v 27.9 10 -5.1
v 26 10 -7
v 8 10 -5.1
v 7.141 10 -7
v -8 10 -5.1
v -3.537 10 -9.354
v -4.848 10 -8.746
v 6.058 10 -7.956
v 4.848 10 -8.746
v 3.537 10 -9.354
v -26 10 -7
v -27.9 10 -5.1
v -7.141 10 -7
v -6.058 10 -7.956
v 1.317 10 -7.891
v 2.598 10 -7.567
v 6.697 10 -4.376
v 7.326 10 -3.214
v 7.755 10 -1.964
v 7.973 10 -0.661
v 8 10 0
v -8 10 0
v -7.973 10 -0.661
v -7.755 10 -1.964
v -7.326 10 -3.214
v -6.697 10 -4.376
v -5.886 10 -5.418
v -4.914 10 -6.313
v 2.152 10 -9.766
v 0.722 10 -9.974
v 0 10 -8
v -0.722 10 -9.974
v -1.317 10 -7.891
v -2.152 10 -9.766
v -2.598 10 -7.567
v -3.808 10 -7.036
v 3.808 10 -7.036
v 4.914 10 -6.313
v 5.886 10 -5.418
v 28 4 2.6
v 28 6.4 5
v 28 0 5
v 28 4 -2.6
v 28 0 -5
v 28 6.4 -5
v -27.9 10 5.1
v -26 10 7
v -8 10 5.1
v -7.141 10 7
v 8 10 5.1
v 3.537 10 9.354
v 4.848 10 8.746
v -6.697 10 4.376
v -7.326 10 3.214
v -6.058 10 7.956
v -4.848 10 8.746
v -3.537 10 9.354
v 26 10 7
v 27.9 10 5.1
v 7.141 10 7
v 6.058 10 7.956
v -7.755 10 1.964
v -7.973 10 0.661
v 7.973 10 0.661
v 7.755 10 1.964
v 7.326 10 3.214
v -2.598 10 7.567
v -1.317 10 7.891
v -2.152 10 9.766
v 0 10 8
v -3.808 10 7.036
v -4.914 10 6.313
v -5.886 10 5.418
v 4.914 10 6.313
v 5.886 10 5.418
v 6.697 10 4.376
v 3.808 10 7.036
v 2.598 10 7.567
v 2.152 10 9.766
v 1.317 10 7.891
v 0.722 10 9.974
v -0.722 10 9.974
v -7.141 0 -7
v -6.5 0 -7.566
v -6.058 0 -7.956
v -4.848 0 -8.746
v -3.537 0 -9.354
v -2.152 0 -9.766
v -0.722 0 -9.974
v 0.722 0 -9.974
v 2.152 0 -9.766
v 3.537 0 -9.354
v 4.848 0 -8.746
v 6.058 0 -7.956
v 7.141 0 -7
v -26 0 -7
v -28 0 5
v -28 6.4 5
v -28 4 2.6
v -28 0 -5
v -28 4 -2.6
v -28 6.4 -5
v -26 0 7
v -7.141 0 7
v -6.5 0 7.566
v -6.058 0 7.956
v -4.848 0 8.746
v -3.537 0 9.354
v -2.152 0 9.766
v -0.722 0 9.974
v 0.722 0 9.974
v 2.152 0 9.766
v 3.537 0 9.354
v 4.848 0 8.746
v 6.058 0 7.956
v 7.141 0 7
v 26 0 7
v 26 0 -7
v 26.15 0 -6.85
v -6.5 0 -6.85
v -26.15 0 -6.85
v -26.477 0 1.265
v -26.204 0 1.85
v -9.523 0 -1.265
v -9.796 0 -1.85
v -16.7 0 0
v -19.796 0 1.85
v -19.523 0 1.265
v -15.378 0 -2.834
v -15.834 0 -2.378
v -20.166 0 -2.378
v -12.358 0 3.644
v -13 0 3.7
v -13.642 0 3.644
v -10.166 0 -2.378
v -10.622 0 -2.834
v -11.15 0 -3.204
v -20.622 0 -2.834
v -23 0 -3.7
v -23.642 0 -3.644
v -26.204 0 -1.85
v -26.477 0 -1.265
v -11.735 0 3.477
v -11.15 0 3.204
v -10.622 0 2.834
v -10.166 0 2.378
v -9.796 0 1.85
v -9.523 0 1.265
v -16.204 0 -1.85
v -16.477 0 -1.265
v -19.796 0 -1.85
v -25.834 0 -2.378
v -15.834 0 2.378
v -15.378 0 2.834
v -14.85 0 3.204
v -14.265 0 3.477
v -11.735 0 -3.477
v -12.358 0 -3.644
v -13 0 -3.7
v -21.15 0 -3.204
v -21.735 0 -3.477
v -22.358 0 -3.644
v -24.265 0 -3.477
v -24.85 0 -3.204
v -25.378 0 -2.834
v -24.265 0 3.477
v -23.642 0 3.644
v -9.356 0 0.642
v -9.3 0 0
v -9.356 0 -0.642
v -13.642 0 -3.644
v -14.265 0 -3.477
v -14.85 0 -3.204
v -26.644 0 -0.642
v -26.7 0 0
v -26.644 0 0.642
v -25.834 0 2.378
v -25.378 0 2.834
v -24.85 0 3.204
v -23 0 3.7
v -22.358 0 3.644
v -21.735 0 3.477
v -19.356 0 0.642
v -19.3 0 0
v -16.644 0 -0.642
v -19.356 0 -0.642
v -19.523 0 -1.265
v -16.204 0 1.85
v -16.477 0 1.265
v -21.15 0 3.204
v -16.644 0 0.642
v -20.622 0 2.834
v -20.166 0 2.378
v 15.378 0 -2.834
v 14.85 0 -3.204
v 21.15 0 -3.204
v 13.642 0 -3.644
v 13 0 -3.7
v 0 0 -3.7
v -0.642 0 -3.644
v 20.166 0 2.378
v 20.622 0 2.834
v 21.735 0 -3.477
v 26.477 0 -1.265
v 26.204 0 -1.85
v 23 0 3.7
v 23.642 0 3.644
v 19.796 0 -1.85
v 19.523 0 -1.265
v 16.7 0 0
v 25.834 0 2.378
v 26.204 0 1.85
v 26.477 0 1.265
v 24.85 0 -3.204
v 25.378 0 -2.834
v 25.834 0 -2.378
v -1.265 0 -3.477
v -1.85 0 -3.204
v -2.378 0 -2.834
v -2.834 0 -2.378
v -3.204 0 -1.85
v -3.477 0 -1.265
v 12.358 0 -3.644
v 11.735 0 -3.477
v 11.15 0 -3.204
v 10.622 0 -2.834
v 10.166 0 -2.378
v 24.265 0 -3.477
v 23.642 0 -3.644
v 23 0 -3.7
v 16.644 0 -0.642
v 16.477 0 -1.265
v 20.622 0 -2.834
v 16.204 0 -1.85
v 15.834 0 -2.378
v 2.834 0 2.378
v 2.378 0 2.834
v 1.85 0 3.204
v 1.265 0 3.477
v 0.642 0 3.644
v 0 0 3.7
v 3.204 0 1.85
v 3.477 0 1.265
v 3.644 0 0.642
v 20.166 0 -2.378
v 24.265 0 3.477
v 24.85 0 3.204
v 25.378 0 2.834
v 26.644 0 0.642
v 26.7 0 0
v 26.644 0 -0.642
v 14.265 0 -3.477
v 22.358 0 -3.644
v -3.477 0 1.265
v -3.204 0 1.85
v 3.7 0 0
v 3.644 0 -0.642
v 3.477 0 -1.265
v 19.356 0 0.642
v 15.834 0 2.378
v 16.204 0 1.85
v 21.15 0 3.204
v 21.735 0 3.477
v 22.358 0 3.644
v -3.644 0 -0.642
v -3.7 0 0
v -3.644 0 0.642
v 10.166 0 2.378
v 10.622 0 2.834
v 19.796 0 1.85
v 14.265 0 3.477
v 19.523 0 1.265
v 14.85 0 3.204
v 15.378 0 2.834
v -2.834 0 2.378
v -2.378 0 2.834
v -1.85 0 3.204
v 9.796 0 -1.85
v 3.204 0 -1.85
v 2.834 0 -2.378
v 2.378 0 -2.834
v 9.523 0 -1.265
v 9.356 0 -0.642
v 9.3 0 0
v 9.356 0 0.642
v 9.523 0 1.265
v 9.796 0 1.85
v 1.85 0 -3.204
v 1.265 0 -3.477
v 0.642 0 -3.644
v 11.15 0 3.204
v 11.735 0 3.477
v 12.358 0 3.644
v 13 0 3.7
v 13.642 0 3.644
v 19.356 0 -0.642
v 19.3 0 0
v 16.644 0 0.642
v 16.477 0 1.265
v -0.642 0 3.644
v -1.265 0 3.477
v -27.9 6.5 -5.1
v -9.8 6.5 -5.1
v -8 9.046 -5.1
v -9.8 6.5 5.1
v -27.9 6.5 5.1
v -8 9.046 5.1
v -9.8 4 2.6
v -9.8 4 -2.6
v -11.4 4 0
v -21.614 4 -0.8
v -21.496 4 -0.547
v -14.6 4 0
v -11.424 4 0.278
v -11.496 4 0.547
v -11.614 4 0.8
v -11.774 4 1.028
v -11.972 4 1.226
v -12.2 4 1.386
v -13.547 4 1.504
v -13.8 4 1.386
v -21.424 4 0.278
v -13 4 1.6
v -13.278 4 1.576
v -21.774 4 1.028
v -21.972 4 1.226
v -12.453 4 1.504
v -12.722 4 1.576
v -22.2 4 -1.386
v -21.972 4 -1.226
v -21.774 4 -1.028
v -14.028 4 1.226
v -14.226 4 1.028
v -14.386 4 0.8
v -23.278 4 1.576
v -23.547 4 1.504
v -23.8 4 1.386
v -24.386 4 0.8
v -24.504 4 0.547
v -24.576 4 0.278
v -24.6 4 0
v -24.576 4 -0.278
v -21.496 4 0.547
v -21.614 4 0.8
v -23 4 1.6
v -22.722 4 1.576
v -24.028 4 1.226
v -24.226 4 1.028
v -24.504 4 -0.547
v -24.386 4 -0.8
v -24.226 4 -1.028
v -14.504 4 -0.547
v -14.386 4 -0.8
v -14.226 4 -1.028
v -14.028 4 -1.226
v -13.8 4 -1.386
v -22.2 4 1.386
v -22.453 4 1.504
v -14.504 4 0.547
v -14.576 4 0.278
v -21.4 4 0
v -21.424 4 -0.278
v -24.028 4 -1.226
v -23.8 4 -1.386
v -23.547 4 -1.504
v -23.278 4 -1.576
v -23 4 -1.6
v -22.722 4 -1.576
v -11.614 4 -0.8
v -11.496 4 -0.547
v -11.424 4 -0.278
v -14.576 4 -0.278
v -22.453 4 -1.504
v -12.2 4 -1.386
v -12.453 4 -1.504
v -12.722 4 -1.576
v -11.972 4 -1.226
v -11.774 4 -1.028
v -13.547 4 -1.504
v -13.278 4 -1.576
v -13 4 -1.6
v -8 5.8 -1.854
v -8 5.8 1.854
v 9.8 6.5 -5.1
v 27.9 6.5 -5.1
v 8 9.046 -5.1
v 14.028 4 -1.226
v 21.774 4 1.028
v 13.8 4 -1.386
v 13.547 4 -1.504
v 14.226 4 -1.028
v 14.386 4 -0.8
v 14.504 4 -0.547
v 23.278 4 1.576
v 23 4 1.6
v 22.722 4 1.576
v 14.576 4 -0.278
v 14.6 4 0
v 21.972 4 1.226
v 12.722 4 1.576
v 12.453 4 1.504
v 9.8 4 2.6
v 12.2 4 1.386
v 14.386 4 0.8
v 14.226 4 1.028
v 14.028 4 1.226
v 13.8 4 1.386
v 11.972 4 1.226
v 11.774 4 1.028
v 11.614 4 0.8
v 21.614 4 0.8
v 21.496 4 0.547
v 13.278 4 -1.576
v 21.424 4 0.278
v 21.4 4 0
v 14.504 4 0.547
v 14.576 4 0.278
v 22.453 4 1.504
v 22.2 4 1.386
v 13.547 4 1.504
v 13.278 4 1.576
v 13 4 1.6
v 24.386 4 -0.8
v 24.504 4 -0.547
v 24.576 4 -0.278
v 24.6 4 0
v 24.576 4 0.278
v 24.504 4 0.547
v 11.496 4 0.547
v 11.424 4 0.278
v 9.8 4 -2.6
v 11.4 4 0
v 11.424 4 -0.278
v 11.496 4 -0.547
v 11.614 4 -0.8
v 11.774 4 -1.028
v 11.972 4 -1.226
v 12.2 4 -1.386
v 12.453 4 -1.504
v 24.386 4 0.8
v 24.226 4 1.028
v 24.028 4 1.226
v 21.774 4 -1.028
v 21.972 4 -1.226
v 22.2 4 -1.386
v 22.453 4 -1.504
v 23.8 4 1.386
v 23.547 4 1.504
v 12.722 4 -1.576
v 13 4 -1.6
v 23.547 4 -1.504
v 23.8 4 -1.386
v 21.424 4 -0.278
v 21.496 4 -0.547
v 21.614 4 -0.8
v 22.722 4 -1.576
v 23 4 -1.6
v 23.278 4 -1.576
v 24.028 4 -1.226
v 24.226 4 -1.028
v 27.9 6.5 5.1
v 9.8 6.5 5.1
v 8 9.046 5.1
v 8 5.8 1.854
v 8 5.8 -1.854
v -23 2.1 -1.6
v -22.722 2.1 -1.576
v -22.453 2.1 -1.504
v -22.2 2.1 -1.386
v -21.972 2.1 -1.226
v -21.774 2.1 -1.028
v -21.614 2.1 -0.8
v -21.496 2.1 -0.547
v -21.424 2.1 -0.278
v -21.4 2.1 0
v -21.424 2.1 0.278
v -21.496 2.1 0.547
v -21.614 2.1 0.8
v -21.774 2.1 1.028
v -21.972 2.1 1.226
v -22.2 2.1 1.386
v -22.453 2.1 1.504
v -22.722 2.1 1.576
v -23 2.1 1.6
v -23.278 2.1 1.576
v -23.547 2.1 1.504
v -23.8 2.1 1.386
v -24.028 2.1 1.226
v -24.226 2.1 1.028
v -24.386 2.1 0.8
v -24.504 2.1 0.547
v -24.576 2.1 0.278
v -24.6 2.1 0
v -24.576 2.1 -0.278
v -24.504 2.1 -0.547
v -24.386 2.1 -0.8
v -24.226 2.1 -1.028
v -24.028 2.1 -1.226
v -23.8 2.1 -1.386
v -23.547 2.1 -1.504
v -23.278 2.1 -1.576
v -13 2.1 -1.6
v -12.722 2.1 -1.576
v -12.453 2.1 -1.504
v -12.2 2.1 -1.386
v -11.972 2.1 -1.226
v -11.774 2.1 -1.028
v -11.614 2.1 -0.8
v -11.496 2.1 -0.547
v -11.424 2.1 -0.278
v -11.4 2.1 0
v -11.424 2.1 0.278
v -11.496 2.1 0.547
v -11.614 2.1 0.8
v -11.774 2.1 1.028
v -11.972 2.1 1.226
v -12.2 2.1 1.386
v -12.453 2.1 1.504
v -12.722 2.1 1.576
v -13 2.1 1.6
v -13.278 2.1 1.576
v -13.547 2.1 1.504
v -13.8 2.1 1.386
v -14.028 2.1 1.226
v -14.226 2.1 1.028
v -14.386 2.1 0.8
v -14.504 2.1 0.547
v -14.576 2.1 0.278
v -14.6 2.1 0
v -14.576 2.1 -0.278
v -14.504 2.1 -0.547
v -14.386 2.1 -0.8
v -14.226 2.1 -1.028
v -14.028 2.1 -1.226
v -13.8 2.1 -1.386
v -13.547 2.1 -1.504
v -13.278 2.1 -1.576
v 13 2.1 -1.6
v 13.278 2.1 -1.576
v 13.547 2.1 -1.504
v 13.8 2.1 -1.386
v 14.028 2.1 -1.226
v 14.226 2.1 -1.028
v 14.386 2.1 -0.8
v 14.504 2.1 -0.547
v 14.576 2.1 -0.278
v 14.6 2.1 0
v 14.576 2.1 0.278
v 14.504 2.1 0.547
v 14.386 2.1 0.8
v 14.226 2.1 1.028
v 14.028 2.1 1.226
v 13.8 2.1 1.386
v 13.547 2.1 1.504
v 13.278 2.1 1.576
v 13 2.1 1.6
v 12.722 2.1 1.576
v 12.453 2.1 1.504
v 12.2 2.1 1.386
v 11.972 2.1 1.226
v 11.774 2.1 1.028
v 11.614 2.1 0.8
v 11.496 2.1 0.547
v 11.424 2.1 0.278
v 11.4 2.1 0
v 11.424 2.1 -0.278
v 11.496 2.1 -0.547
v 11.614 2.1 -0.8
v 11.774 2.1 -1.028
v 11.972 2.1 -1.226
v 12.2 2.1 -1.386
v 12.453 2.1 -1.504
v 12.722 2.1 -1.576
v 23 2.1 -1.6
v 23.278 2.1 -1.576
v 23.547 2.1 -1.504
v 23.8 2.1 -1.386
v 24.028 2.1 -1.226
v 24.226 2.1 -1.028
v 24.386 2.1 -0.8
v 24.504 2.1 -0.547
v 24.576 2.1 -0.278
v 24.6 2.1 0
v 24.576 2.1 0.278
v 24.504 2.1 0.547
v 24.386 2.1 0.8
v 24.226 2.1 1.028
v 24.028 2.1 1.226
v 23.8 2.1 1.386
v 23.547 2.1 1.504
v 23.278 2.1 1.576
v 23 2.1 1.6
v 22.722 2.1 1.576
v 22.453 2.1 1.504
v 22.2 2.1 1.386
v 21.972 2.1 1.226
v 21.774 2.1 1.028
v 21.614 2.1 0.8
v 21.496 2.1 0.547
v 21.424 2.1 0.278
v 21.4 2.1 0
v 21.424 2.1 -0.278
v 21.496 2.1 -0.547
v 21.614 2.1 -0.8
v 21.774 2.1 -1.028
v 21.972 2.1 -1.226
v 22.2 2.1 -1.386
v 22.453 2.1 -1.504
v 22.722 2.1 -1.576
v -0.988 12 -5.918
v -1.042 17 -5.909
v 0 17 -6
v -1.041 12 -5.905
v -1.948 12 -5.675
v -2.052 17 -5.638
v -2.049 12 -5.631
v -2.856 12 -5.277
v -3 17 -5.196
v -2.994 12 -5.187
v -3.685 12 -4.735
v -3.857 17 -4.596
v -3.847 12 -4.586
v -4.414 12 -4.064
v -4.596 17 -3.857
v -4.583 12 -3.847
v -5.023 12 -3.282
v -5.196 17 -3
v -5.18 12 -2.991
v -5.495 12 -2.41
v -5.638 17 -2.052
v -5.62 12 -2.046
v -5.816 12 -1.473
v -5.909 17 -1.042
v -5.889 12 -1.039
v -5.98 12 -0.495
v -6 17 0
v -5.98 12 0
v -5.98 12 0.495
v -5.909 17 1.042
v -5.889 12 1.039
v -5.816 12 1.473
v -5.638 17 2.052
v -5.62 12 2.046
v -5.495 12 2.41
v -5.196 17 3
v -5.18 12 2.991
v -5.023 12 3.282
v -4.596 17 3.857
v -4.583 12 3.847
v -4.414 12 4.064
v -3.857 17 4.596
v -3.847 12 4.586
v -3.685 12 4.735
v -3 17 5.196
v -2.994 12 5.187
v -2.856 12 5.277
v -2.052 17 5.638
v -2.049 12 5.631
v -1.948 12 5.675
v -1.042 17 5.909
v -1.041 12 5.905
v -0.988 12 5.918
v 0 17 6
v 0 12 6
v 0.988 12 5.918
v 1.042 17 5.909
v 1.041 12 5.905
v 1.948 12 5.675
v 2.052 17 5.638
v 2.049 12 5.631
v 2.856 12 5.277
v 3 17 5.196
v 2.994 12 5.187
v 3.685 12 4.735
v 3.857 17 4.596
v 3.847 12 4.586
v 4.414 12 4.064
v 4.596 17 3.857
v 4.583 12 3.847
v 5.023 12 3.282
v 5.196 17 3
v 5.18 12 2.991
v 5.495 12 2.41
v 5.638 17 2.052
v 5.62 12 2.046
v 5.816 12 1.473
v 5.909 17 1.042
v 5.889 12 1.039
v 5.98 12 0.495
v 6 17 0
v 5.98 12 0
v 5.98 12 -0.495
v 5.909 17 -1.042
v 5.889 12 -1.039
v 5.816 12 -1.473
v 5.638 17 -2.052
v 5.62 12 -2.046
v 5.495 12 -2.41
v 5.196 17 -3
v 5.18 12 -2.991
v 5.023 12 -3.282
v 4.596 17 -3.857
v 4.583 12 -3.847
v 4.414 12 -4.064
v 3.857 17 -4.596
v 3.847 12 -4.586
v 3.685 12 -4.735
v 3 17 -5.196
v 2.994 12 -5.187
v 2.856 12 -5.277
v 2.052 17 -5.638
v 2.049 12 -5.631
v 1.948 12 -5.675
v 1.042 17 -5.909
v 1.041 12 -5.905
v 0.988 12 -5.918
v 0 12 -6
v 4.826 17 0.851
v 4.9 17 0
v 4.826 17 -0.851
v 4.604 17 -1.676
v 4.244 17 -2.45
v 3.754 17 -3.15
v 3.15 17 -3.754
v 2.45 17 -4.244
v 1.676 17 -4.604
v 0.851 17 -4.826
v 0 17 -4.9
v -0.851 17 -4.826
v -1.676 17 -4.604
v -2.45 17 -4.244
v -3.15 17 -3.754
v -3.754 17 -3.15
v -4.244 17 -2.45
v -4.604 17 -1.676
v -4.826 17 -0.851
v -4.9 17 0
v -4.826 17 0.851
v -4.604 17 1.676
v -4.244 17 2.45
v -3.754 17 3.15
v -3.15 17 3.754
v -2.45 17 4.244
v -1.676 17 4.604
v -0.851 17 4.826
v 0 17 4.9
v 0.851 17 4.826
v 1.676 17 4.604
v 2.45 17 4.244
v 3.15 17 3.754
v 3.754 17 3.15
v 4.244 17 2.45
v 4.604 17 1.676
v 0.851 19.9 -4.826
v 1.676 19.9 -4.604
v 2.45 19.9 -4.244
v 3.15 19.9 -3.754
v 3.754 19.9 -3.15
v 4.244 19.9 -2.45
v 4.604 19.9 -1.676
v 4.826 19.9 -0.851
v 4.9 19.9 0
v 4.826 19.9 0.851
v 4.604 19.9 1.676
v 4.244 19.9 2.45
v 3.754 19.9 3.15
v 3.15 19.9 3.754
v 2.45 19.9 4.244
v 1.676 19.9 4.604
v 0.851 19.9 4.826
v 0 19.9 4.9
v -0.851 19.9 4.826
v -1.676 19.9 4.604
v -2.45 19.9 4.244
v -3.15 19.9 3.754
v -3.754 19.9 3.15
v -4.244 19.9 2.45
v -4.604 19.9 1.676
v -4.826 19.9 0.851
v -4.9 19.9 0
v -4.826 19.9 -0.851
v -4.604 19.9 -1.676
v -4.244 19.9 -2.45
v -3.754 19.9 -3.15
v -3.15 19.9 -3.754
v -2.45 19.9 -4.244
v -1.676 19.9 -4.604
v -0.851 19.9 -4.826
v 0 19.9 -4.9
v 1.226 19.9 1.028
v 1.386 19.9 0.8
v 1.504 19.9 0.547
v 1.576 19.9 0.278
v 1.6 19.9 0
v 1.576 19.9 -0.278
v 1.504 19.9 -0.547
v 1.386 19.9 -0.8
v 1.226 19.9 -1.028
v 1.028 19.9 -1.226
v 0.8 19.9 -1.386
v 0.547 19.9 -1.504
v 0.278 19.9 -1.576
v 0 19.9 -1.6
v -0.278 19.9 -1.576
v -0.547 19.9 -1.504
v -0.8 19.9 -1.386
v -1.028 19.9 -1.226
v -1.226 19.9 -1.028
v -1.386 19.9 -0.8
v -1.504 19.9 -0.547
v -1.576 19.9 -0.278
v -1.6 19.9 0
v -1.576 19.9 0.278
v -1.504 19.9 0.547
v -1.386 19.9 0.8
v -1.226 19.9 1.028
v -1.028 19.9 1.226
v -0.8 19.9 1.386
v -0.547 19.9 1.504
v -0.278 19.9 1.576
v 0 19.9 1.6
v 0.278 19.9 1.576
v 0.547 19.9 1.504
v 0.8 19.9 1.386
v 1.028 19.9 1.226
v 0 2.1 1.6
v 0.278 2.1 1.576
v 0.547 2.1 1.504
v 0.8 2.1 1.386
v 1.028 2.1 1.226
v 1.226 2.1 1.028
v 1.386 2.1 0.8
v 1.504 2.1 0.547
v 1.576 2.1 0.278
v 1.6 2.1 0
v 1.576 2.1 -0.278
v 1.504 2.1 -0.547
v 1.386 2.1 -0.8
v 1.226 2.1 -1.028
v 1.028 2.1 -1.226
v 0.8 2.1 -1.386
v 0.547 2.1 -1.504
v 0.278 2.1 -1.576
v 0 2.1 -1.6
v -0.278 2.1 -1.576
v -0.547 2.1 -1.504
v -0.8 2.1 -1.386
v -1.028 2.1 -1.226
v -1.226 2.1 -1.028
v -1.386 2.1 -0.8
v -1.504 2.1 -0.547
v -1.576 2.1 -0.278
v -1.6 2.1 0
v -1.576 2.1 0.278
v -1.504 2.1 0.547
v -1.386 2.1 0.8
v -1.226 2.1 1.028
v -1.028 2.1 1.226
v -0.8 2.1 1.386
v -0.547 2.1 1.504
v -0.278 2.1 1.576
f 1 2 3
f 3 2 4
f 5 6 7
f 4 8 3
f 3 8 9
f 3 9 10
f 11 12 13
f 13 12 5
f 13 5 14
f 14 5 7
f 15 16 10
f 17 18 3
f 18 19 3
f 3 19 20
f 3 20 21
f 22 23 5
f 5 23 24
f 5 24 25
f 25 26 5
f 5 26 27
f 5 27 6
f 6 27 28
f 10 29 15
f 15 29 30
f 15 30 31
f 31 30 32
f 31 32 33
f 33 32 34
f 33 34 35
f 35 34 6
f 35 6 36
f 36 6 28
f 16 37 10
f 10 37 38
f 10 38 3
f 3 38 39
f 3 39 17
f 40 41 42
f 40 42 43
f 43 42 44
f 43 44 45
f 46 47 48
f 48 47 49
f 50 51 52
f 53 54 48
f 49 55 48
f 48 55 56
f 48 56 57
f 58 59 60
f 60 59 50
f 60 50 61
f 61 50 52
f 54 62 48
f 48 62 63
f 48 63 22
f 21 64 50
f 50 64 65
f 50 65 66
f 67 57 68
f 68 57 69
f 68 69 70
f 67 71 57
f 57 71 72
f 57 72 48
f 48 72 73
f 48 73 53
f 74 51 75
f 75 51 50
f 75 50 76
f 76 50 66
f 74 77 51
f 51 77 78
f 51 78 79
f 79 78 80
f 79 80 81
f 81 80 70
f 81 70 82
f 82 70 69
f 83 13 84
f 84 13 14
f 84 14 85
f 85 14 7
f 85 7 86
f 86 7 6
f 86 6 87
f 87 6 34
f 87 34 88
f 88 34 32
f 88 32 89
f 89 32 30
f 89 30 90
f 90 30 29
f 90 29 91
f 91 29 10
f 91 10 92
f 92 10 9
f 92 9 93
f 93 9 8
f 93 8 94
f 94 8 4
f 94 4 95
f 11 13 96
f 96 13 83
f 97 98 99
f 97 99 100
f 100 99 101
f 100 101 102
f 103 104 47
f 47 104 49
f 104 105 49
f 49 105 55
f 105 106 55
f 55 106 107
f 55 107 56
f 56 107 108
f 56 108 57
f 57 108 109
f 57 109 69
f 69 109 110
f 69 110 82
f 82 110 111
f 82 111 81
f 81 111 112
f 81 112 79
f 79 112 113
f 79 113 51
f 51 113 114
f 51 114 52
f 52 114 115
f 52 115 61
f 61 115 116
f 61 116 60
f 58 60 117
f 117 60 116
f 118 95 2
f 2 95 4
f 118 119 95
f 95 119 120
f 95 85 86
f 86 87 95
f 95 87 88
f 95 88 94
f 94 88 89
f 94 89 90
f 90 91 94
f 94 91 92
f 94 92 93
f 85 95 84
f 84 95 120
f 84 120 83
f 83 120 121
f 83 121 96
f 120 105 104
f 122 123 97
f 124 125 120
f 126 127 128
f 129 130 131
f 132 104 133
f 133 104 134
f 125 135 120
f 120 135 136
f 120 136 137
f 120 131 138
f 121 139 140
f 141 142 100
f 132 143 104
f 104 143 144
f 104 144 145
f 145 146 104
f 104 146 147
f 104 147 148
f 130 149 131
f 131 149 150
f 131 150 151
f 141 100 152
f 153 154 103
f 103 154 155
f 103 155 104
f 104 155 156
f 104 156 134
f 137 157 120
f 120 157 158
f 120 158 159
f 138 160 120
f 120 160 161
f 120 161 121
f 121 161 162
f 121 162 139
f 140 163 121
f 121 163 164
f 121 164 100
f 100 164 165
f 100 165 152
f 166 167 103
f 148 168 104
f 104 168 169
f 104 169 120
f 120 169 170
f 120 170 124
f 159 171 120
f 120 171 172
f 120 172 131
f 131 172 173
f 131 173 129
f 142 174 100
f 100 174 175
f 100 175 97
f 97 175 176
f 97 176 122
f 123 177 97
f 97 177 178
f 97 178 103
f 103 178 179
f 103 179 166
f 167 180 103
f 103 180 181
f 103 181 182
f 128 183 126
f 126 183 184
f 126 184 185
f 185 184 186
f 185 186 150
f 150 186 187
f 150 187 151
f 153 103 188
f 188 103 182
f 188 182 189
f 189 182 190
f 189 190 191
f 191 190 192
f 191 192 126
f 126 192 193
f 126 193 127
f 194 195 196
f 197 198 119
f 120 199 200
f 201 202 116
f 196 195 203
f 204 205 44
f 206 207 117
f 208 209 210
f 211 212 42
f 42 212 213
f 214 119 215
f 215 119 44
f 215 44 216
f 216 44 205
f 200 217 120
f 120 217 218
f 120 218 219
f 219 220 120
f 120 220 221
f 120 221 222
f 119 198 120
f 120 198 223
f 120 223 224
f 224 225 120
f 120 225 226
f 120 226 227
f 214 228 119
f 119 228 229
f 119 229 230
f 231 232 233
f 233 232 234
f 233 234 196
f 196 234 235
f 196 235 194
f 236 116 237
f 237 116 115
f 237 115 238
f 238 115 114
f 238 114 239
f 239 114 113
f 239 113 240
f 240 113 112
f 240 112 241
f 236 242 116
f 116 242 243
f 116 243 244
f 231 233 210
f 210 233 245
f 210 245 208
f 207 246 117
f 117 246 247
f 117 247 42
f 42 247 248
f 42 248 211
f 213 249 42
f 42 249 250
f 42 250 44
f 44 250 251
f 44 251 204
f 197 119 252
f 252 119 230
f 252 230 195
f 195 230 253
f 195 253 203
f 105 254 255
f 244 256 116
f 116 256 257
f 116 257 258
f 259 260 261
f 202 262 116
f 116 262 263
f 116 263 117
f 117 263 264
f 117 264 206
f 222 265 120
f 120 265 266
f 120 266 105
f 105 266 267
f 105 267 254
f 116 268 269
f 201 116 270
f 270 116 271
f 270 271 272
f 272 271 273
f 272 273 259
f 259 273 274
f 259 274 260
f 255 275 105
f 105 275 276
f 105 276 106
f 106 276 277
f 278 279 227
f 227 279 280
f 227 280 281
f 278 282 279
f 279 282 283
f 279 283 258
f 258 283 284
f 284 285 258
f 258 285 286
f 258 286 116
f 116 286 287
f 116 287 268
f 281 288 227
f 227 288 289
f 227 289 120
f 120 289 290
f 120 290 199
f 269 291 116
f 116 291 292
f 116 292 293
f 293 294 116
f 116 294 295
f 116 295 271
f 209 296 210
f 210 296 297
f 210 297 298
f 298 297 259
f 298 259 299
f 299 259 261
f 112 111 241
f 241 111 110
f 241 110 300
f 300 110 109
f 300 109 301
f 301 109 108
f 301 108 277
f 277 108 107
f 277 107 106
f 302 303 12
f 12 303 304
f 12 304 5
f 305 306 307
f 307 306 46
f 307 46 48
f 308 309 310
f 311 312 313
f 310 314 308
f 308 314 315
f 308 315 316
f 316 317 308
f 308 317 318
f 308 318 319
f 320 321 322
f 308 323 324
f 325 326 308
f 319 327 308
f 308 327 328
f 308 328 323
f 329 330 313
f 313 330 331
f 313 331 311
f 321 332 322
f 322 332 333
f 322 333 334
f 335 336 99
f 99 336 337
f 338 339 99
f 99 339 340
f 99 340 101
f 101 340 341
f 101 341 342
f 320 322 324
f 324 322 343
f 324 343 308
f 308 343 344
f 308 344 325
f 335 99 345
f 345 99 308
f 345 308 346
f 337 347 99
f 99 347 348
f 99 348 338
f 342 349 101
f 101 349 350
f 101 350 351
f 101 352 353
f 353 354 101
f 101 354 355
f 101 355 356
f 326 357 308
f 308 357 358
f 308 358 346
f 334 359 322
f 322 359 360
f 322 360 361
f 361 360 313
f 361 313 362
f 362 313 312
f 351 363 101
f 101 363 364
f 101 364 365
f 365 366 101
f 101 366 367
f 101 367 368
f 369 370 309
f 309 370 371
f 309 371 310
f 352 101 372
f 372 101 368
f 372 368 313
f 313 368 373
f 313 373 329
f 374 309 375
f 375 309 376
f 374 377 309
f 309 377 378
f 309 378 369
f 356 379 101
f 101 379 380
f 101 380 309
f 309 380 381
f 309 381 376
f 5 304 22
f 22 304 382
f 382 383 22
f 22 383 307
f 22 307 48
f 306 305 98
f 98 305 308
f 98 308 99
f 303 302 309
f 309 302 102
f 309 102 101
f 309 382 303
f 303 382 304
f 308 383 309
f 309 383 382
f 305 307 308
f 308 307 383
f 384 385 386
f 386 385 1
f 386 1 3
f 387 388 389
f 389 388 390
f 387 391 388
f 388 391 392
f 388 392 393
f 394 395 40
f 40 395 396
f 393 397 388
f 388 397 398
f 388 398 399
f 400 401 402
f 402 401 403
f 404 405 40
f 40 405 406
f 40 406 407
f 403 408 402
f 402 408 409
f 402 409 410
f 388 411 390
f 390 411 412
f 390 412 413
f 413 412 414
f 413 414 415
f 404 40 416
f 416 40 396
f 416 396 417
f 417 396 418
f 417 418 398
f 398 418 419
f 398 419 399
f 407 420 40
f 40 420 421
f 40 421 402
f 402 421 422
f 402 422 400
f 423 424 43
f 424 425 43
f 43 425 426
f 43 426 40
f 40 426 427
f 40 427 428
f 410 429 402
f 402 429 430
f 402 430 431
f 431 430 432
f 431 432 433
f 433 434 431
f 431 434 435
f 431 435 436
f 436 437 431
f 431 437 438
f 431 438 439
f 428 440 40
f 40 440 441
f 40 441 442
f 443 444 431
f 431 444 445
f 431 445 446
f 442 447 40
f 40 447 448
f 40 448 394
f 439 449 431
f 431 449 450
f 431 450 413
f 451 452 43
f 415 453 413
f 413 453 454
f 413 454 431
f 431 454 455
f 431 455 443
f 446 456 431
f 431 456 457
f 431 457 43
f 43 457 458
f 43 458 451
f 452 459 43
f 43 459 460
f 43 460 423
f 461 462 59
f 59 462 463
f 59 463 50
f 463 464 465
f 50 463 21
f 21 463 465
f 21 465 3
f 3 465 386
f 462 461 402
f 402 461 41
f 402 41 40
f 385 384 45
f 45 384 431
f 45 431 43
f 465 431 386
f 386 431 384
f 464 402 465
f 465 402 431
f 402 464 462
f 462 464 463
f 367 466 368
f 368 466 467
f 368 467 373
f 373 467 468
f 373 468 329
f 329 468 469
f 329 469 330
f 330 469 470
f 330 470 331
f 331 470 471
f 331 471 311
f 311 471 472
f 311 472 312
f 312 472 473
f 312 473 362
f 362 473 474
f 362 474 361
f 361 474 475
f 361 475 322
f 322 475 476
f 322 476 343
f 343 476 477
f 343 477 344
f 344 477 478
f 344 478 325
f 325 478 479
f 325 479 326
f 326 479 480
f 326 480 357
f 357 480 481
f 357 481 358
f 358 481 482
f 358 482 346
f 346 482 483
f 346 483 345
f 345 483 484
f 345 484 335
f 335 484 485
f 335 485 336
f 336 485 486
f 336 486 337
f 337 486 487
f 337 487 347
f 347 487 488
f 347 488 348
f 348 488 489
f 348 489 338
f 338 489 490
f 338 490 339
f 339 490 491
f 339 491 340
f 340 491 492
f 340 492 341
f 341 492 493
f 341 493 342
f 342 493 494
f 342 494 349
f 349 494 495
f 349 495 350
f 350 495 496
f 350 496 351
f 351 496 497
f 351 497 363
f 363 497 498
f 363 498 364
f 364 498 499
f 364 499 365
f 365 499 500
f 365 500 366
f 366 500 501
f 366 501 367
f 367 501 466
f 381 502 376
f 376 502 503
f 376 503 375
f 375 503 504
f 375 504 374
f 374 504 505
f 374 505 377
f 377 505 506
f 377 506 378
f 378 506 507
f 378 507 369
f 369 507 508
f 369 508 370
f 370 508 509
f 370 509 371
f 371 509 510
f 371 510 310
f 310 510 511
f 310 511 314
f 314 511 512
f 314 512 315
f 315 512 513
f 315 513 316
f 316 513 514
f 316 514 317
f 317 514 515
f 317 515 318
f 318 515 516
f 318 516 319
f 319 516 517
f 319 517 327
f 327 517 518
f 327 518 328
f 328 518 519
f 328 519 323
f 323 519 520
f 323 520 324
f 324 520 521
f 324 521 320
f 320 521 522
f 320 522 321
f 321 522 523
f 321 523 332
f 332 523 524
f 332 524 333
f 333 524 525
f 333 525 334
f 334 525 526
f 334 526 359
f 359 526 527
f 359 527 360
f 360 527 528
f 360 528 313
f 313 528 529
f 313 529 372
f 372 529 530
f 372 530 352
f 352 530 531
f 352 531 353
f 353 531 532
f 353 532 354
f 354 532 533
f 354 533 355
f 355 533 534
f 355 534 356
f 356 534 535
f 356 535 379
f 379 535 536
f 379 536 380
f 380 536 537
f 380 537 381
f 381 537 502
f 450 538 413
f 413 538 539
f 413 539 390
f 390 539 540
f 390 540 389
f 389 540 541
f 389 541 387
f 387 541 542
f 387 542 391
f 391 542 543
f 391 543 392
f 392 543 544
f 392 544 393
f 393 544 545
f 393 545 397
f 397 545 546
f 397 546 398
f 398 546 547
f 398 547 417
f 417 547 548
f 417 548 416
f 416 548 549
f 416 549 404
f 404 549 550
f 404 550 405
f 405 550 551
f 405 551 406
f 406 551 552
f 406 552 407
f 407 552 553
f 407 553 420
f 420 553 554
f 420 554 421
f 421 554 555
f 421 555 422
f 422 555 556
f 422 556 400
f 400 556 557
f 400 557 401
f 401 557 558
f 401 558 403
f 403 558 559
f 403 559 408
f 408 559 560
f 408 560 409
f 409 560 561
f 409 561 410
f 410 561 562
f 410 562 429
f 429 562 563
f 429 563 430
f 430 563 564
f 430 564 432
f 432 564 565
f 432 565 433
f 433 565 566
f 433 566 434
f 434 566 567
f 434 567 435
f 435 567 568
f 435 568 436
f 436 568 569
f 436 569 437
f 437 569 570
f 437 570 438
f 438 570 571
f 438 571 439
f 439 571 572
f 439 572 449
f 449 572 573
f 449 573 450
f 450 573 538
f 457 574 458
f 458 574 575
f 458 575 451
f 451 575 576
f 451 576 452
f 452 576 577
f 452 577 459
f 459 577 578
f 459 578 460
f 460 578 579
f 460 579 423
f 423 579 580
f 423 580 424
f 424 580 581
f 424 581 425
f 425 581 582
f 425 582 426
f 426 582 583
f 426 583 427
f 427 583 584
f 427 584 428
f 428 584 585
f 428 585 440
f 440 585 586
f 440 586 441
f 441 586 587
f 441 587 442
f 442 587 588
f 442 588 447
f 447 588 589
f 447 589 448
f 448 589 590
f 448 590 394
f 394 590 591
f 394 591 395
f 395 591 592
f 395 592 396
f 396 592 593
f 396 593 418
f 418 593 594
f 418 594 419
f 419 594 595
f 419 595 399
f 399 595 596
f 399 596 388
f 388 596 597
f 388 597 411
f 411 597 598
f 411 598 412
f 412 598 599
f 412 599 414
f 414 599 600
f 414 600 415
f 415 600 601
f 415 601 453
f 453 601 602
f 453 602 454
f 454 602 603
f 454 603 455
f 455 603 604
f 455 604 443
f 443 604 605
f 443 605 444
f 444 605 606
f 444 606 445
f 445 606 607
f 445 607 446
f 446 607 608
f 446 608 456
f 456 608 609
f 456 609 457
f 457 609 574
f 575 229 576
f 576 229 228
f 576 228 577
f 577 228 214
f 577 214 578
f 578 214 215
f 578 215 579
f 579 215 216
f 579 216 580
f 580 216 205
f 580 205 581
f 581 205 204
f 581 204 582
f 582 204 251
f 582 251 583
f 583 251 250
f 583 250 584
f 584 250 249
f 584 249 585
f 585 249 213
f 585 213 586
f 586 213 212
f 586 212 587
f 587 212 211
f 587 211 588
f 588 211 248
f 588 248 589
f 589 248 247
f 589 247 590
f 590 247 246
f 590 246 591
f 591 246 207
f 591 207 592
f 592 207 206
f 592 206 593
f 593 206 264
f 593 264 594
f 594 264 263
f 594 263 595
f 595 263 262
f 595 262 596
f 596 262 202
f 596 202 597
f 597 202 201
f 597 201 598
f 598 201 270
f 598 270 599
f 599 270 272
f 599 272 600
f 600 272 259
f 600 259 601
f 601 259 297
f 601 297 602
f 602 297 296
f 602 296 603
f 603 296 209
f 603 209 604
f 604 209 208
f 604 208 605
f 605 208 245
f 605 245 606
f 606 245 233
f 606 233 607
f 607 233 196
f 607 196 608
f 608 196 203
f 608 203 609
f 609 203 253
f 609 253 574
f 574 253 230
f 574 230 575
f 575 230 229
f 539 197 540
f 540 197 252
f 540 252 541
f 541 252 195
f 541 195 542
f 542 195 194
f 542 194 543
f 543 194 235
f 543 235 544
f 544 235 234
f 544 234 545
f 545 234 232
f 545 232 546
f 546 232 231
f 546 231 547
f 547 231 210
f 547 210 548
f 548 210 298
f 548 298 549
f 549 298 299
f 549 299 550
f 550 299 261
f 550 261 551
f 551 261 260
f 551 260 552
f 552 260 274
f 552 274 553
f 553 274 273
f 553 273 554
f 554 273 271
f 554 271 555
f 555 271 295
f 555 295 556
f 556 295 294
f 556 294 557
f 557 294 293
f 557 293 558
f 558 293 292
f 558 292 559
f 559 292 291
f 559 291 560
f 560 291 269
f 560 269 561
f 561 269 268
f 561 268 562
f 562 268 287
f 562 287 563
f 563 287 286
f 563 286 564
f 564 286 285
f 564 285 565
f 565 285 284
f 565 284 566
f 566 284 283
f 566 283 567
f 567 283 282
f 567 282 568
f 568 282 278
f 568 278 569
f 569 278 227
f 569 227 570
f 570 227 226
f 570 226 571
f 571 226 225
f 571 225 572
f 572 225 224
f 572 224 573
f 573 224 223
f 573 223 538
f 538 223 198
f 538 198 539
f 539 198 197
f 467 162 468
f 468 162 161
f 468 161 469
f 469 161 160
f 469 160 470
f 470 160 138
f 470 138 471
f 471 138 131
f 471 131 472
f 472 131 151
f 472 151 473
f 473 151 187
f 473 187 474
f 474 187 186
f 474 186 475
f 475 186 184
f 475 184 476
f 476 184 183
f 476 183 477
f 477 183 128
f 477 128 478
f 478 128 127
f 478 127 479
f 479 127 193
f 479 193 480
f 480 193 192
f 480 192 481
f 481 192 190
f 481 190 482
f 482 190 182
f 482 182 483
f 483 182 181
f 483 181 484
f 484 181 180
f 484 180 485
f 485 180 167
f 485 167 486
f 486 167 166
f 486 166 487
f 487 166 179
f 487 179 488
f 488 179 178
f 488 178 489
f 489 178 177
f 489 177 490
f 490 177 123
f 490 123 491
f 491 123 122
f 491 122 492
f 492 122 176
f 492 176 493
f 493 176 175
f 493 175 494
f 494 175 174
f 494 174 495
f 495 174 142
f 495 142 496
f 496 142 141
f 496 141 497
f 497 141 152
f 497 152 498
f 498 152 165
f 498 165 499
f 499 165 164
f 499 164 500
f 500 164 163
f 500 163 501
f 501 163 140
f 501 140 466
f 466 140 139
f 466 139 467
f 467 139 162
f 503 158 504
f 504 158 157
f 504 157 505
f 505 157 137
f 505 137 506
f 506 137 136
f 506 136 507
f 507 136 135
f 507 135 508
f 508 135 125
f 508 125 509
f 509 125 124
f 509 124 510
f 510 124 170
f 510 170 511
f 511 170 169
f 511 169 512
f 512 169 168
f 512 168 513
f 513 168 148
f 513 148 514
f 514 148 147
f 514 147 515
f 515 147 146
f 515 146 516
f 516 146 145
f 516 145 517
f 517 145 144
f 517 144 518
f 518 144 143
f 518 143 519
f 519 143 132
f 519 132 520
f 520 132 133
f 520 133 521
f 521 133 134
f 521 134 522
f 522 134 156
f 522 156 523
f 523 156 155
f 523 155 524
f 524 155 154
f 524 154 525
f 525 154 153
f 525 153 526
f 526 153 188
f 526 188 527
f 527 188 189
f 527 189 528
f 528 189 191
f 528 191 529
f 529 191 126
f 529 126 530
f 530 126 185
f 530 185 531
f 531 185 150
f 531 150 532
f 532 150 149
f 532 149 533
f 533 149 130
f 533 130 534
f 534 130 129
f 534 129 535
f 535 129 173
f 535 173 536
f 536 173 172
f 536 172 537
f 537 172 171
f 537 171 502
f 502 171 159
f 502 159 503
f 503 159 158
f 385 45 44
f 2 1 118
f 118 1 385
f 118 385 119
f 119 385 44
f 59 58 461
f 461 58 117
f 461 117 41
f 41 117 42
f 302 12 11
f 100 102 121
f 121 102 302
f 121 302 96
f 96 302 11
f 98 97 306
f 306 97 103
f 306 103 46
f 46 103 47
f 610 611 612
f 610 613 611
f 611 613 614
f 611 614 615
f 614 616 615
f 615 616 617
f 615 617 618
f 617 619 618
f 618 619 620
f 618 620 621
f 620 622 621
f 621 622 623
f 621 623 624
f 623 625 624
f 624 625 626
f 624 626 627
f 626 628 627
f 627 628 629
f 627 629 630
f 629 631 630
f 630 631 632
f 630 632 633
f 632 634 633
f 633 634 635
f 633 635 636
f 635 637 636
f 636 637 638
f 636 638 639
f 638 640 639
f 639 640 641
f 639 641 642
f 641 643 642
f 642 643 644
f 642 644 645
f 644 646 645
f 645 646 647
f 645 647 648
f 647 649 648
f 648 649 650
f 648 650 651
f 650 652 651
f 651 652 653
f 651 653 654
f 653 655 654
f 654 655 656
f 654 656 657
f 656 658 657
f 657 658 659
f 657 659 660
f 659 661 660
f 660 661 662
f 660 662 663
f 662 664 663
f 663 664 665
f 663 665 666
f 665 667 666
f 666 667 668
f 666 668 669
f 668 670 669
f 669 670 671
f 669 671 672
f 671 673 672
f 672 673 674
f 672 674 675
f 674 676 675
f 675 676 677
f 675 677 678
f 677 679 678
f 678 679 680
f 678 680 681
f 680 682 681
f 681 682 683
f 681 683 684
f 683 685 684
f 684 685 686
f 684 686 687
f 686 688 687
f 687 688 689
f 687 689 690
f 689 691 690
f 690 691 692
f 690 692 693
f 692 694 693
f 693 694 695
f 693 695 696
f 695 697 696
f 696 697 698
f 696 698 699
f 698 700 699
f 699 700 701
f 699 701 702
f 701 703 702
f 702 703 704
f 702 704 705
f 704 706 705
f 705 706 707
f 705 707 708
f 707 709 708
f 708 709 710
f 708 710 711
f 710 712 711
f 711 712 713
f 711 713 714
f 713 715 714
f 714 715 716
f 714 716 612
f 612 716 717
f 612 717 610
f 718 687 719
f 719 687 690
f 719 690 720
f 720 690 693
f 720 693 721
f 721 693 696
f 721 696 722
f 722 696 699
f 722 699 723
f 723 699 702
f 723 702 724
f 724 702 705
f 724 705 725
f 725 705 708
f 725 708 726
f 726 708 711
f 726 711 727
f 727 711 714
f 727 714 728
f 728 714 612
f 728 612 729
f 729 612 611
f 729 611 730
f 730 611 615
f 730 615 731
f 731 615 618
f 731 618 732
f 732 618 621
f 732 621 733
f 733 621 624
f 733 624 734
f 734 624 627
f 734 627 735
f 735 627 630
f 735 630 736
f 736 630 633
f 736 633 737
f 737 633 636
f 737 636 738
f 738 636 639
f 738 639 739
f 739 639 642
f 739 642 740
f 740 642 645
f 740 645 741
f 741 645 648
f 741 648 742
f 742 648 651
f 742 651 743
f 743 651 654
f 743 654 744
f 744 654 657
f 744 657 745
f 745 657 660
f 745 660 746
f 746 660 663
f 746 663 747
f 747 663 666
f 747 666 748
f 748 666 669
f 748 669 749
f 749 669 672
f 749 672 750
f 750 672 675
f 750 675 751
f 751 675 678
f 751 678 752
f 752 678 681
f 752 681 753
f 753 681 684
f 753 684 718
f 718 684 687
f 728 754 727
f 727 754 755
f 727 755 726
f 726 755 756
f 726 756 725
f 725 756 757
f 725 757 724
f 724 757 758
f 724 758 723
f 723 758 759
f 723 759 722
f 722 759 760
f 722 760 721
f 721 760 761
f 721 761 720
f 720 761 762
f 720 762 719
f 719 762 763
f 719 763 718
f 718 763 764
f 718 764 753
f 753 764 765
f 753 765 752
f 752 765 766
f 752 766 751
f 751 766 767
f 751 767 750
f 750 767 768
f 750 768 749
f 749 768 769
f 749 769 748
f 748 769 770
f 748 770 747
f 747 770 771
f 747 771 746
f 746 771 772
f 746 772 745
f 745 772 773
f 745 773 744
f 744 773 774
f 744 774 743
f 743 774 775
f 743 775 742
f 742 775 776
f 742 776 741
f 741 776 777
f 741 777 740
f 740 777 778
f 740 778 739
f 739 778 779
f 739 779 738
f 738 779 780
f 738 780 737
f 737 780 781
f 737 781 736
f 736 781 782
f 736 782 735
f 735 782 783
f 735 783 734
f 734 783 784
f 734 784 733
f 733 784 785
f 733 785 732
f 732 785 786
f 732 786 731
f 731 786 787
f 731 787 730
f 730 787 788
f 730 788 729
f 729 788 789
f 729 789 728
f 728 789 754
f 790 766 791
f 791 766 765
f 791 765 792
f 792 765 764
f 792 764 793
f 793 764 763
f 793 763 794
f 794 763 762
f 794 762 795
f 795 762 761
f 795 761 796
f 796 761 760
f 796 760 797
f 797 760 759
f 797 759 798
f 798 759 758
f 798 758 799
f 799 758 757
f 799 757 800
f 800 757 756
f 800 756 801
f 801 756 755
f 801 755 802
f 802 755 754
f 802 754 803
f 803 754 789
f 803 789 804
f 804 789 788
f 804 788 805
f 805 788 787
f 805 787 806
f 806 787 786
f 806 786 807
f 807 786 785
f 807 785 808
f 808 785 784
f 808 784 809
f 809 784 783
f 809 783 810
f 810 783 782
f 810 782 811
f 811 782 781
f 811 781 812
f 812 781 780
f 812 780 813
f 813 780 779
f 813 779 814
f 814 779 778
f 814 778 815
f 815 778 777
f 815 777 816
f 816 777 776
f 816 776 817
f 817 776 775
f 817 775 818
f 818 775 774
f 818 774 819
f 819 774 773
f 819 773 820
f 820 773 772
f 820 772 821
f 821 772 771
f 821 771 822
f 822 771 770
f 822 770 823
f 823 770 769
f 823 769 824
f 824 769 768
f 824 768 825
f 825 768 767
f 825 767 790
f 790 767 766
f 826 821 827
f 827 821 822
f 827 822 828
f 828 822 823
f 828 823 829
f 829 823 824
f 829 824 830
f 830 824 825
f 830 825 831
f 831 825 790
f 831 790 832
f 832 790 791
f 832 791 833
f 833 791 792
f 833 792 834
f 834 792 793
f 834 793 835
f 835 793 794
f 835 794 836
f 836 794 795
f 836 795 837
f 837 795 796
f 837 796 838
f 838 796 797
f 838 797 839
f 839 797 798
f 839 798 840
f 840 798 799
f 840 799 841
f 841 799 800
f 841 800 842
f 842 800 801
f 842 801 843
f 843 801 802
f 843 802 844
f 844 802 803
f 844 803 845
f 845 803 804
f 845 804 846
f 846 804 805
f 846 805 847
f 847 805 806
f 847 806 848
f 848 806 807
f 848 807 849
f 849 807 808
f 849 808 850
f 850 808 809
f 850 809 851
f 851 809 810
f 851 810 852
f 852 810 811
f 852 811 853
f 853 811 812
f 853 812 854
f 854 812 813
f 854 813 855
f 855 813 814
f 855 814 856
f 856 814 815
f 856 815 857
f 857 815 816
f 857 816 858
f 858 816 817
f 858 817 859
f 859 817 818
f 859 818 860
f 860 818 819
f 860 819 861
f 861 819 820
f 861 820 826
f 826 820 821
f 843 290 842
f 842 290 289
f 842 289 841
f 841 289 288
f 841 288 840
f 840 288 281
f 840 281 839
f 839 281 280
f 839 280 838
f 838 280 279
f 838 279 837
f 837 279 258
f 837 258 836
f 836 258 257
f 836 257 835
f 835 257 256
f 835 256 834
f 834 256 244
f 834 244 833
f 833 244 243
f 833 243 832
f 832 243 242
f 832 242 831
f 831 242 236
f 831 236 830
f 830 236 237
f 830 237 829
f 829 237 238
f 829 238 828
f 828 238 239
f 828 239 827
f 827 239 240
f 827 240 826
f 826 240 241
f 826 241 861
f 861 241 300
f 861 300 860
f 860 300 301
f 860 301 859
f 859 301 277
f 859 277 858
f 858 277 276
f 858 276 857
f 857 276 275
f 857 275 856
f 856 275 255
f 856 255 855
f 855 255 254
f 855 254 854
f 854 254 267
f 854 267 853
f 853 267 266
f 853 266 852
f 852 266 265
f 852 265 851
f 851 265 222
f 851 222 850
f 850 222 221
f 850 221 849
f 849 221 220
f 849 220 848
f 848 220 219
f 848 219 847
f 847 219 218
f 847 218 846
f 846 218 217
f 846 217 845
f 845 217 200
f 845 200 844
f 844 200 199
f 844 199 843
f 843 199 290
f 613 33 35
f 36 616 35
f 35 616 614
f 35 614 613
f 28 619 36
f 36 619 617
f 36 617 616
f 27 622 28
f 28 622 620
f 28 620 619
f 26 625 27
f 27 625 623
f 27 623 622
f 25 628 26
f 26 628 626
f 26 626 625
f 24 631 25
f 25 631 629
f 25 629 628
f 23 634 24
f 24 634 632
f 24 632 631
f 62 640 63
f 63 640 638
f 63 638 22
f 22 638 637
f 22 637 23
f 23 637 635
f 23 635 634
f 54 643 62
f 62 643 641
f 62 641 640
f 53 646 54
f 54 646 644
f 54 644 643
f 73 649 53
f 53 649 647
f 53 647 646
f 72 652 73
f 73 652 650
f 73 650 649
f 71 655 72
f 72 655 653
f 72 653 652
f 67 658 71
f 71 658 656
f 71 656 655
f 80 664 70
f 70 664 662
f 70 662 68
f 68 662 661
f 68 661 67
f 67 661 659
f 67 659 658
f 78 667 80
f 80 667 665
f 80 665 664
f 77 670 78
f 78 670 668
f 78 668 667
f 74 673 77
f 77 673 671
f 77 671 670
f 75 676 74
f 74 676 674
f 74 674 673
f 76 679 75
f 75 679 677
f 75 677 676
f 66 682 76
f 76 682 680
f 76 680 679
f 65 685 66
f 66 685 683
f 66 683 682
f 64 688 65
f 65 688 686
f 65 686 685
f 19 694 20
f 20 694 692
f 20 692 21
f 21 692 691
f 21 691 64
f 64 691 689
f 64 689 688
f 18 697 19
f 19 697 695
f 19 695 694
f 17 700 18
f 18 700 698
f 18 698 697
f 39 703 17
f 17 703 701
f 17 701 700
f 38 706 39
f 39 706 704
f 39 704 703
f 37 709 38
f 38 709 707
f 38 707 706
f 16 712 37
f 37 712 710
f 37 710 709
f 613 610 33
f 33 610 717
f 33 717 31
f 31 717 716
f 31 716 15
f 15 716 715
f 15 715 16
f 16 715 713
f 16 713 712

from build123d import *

# Parameters (mm, degrees)
BOSS_EXTRU_1_DEPTH           = 10
ENL_V_MAT_EXTRU_1_DEPTH      = 20
CHANFREIN1_SIZE              = 2.5
CHANFREIN2_SIZE              = 1.8
CHANFREIN1_OF_SYM_TRIE1_SIZE = 2.5
CHANFREIN2_OF_SYM_TRIE1_SIZE = 1.8
ESQUISSE5_R                  = 1.6000000000000016
ESQUISSE5_R_2                = 1.6000000000000019
ENL_V_MAT_EXTRU_4_DEPTH      = 7
CHANFREIN4_SIZE              = 2.1
CHANFREIN5_SIZE              = 2
ESQUISSE6_R                  = 6
BOSS_EXTRU_2_DEPTH           = 7
ESQUISSE7_R                  = 4.9
BOSS_EXTRU_3_DEPTH           = 2.9
ESQUISSE8_R                  = 1.6
ENL_V_MAT_EXTRU_5_DEPTH      = 36.777227393972275
CHANFREIN6_SIZE              = 2.1
CHANFREIN7_SIZE              = 2


with BuildPart() as part:
    # Esquisse1 → Boss.-Extru.1 (new body)
    with BuildSketch(Plane(origin=(0, 0, 0), x_dir=(1, 0, 0), z_dir=(0, 1, 0))):
        with BuildLine():
            Line((7.1414284285428495, 7), (27.999999999999996, 7))
            Line((27.999999999999996, 7), (27.999999999999996, -7))
            Line((27.999999999999996, -7), (7.1414284285428495, -7))
            ThreePointArc((7.1414284285428495, -7), (6.1e-16, -10), (-7.1414284285428495, -7))
            Line((-7.1414284285428495, -7), (-28.000000000000004, -7))
            Line((-28.000000000000004, -7), (-28.000000000000004, 7))
            Line((-28.000000000000004, 7), (-7.1414284285428495, 7))
            ThreePointArc((-7.1414284285428495, 7), (6.1e-16, 10), (7.1414284285428495, 7))
        make_face()
    extrude(amount=BOSS_EXTRU_1_DEPTH)

    # Esquisse2 → Enlèv. mat.-Extru.1 (cut)
    with BuildSketch(Plane.ZY.offset(28.000000000000004)):
        Polygon((-5.1000000000000005, 10), (5.099999999999999, 10), (5.099999999999999, 3.999999999999999), (-5.1000000000000005, 4), align=None)
    enl_v_mat_extru_1 = extrude(amount=-ENL_V_MAT_EXTRU_1_DEPTH, mode=Mode.SUBTRACT)

    # Chanfrein1
    chanfrein1_edges = [part.edges().sort_by_distance(p)[0] for p in [
        (-18.000000000000004, 4, -5.1000000000000005),
        (-18.000000000000004, 3.999999999999999, 5.099999999999999),
    ]]
    chamfer(chanfrein1_edges, length=CHANFREIN1_SIZE)

    # Chanfrein2
    chanfrein2_edges = [part.edges().sort_by_distance(p)[0] for p in [
        (-8.000000000000004, 3.9999999999999996, -8.9e-16),
        (-8.000000000000005, 5.250000000000001, -3.8500000000000005),
        (-8.000000000000004, 5.25, 3.849999999999998),
    ]]
    chamfer(chanfrein2_edges, length=CHANFREIN2_SIZE)

    # Symétrie1: Enlèv. mat.-Extru.1 across plane
    add(enl_v_mat_extru_1.mirror(Plane(origin=(0, 0, 0), x_dir=(0, 0, 1), z_dir=(1, 0, 0))), mode=Mode.SUBTRACT)

    # Chanfrein1 of Symétrie1
    chanfrein1_of_sym_trie1_edges = [part.edges().sort_by_distance(p)[0] for p in [
        (18.000000000000004, 4, -5.1000000000000005),
        (18.000000000000004, 3.999999999999999, 5.099999999999999),
    ]]
    chamfer(chanfrein1_of_sym_trie1_edges, length=CHANFREIN1_OF_SYM_TRIE1_SIZE)

    # Chanfrein2 of Symétrie1
    chanfrein2_of_sym_trie1_edges = [part.edges().sort_by_distance(p)[0] for p in [
        (8.000000000000004, 3.9999999999999996, -8.9e-16),
        (8.000000000000005, 5.250000000000001, -3.8500000000000005),
        (8.000000000000004, 5.25, 3.849999999999998),
    ]]
    chamfer(chanfrein2_of_sym_trie1_edges, length=CHANFREIN2_OF_SYM_TRIE1_SIZE)

    # Esquisse5 → Enlèv. mat.-Extru.4 (cut)
    with BuildSketch(Plane.XZ):
        with Locations(Location((-23.000000000000004, 0, 0), (0, 0, 270))):
            Circle(ESQUISSE5_R)
        with Locations(Location((-13.000000000000004, 0, 0), (0, 0, 270))):
            Circle(ESQUISSE5_R_2)
        with Locations(Location((12.999999999999996, 0, 0), (0, 0, 270))):
            Circle(ESQUISSE5_R_2)
        with Locations(Location((22.999999999999993, 0, 0), (0, 0, 270))):
            Circle(ESQUISSE5_R)
    extrude(amount=-ENL_V_MAT_EXTRU_4_DEPTH, mode=Mode.SUBTRACT)

    # Chanfrein4
    chanfrein4_edges = [part.edges().sort_by_distance(p)[0] for p in [
        (-23.000000000000004, 0, 1.6000000000000016),
        (-13.000000000000004, 0, 1.6000000000000019),
        (12.999999999999996, 0, 1.6000000000000019),
        (22.999999999999993, 0, 1.6000000000000016),
    ]]
    chamfer(chanfrein4_edges, length=CHANFREIN4_SIZE)

    # Chanfrein5
    chanfrein5_edges = [part.edges().sort_by_distance(p)[0] for p in [
        (27.999999999999996, 5, -7),
        (27.999999999999996, 5, 7),
        (-28.000000000000004, 5, -7),
        (-28.000000000000004, 5, 7),
    ]]
    chamfer(chanfrein5_edges, length=CHANFREIN5_SIZE)

    # Esquisse6 → Boss.-Extru.2 (add)
    with BuildSketch(Plane(origin=(0, 10, 0), x_dir=(1, 0, 0), z_dir=(0, 1, 0))):
        with Locations(Location((0, 0, 0), (0, 0, 270))):
            Circle(ESQUISSE6_R)
    extrude(amount=BOSS_EXTRU_2_DEPTH)

    # Esquisse7 → Boss.-Extru.3 (add)
    with BuildSketch(Plane(origin=(0, 17, 0), x_dir=(1, 0, 0), z_dir=(0, 1, 0))):
        with Locations(Location((0, 0, 0), (0, 0, 270))):
            Circle(ESQUISSE7_R)
    extrude(amount=BOSS_EXTRU_3_DEPTH)

    # Esquisse8 → Enlèv. mat.-Extru.5 (cut, through all)
    with BuildSketch(Plane(origin=(0, 19.900000000000002, 0), x_dir=(1, 0, 0), z_dir=(0, 1, 0))):
        with Locations(Location((0, 0, 0), (0, 0, 270))):
            Circle(ESQUISSE8_R)
    extrude(amount=-ENL_V_MAT_EXTRU_5_DEPTH, mode=Mode.SUBTRACT)

    # Chanfrein6
    chanfrein6_edges = [part.edges().sort_by_distance(p)[0] for p in [
        (4.9e-16, 0, -1.6),
    ]]
    chamfer(chanfrein6_edges, length=CHANFREIN6_SIZE)

    # Chanfrein7
    chanfrein7_edges = [part.edges().sort_by_distance(p)[0] for p in [
        (1.84e-15, 10, -6),
    ]]
    chamfer(chanfrein7_edges, length=CHANFREIN7_SIZE)


solid = part.part
